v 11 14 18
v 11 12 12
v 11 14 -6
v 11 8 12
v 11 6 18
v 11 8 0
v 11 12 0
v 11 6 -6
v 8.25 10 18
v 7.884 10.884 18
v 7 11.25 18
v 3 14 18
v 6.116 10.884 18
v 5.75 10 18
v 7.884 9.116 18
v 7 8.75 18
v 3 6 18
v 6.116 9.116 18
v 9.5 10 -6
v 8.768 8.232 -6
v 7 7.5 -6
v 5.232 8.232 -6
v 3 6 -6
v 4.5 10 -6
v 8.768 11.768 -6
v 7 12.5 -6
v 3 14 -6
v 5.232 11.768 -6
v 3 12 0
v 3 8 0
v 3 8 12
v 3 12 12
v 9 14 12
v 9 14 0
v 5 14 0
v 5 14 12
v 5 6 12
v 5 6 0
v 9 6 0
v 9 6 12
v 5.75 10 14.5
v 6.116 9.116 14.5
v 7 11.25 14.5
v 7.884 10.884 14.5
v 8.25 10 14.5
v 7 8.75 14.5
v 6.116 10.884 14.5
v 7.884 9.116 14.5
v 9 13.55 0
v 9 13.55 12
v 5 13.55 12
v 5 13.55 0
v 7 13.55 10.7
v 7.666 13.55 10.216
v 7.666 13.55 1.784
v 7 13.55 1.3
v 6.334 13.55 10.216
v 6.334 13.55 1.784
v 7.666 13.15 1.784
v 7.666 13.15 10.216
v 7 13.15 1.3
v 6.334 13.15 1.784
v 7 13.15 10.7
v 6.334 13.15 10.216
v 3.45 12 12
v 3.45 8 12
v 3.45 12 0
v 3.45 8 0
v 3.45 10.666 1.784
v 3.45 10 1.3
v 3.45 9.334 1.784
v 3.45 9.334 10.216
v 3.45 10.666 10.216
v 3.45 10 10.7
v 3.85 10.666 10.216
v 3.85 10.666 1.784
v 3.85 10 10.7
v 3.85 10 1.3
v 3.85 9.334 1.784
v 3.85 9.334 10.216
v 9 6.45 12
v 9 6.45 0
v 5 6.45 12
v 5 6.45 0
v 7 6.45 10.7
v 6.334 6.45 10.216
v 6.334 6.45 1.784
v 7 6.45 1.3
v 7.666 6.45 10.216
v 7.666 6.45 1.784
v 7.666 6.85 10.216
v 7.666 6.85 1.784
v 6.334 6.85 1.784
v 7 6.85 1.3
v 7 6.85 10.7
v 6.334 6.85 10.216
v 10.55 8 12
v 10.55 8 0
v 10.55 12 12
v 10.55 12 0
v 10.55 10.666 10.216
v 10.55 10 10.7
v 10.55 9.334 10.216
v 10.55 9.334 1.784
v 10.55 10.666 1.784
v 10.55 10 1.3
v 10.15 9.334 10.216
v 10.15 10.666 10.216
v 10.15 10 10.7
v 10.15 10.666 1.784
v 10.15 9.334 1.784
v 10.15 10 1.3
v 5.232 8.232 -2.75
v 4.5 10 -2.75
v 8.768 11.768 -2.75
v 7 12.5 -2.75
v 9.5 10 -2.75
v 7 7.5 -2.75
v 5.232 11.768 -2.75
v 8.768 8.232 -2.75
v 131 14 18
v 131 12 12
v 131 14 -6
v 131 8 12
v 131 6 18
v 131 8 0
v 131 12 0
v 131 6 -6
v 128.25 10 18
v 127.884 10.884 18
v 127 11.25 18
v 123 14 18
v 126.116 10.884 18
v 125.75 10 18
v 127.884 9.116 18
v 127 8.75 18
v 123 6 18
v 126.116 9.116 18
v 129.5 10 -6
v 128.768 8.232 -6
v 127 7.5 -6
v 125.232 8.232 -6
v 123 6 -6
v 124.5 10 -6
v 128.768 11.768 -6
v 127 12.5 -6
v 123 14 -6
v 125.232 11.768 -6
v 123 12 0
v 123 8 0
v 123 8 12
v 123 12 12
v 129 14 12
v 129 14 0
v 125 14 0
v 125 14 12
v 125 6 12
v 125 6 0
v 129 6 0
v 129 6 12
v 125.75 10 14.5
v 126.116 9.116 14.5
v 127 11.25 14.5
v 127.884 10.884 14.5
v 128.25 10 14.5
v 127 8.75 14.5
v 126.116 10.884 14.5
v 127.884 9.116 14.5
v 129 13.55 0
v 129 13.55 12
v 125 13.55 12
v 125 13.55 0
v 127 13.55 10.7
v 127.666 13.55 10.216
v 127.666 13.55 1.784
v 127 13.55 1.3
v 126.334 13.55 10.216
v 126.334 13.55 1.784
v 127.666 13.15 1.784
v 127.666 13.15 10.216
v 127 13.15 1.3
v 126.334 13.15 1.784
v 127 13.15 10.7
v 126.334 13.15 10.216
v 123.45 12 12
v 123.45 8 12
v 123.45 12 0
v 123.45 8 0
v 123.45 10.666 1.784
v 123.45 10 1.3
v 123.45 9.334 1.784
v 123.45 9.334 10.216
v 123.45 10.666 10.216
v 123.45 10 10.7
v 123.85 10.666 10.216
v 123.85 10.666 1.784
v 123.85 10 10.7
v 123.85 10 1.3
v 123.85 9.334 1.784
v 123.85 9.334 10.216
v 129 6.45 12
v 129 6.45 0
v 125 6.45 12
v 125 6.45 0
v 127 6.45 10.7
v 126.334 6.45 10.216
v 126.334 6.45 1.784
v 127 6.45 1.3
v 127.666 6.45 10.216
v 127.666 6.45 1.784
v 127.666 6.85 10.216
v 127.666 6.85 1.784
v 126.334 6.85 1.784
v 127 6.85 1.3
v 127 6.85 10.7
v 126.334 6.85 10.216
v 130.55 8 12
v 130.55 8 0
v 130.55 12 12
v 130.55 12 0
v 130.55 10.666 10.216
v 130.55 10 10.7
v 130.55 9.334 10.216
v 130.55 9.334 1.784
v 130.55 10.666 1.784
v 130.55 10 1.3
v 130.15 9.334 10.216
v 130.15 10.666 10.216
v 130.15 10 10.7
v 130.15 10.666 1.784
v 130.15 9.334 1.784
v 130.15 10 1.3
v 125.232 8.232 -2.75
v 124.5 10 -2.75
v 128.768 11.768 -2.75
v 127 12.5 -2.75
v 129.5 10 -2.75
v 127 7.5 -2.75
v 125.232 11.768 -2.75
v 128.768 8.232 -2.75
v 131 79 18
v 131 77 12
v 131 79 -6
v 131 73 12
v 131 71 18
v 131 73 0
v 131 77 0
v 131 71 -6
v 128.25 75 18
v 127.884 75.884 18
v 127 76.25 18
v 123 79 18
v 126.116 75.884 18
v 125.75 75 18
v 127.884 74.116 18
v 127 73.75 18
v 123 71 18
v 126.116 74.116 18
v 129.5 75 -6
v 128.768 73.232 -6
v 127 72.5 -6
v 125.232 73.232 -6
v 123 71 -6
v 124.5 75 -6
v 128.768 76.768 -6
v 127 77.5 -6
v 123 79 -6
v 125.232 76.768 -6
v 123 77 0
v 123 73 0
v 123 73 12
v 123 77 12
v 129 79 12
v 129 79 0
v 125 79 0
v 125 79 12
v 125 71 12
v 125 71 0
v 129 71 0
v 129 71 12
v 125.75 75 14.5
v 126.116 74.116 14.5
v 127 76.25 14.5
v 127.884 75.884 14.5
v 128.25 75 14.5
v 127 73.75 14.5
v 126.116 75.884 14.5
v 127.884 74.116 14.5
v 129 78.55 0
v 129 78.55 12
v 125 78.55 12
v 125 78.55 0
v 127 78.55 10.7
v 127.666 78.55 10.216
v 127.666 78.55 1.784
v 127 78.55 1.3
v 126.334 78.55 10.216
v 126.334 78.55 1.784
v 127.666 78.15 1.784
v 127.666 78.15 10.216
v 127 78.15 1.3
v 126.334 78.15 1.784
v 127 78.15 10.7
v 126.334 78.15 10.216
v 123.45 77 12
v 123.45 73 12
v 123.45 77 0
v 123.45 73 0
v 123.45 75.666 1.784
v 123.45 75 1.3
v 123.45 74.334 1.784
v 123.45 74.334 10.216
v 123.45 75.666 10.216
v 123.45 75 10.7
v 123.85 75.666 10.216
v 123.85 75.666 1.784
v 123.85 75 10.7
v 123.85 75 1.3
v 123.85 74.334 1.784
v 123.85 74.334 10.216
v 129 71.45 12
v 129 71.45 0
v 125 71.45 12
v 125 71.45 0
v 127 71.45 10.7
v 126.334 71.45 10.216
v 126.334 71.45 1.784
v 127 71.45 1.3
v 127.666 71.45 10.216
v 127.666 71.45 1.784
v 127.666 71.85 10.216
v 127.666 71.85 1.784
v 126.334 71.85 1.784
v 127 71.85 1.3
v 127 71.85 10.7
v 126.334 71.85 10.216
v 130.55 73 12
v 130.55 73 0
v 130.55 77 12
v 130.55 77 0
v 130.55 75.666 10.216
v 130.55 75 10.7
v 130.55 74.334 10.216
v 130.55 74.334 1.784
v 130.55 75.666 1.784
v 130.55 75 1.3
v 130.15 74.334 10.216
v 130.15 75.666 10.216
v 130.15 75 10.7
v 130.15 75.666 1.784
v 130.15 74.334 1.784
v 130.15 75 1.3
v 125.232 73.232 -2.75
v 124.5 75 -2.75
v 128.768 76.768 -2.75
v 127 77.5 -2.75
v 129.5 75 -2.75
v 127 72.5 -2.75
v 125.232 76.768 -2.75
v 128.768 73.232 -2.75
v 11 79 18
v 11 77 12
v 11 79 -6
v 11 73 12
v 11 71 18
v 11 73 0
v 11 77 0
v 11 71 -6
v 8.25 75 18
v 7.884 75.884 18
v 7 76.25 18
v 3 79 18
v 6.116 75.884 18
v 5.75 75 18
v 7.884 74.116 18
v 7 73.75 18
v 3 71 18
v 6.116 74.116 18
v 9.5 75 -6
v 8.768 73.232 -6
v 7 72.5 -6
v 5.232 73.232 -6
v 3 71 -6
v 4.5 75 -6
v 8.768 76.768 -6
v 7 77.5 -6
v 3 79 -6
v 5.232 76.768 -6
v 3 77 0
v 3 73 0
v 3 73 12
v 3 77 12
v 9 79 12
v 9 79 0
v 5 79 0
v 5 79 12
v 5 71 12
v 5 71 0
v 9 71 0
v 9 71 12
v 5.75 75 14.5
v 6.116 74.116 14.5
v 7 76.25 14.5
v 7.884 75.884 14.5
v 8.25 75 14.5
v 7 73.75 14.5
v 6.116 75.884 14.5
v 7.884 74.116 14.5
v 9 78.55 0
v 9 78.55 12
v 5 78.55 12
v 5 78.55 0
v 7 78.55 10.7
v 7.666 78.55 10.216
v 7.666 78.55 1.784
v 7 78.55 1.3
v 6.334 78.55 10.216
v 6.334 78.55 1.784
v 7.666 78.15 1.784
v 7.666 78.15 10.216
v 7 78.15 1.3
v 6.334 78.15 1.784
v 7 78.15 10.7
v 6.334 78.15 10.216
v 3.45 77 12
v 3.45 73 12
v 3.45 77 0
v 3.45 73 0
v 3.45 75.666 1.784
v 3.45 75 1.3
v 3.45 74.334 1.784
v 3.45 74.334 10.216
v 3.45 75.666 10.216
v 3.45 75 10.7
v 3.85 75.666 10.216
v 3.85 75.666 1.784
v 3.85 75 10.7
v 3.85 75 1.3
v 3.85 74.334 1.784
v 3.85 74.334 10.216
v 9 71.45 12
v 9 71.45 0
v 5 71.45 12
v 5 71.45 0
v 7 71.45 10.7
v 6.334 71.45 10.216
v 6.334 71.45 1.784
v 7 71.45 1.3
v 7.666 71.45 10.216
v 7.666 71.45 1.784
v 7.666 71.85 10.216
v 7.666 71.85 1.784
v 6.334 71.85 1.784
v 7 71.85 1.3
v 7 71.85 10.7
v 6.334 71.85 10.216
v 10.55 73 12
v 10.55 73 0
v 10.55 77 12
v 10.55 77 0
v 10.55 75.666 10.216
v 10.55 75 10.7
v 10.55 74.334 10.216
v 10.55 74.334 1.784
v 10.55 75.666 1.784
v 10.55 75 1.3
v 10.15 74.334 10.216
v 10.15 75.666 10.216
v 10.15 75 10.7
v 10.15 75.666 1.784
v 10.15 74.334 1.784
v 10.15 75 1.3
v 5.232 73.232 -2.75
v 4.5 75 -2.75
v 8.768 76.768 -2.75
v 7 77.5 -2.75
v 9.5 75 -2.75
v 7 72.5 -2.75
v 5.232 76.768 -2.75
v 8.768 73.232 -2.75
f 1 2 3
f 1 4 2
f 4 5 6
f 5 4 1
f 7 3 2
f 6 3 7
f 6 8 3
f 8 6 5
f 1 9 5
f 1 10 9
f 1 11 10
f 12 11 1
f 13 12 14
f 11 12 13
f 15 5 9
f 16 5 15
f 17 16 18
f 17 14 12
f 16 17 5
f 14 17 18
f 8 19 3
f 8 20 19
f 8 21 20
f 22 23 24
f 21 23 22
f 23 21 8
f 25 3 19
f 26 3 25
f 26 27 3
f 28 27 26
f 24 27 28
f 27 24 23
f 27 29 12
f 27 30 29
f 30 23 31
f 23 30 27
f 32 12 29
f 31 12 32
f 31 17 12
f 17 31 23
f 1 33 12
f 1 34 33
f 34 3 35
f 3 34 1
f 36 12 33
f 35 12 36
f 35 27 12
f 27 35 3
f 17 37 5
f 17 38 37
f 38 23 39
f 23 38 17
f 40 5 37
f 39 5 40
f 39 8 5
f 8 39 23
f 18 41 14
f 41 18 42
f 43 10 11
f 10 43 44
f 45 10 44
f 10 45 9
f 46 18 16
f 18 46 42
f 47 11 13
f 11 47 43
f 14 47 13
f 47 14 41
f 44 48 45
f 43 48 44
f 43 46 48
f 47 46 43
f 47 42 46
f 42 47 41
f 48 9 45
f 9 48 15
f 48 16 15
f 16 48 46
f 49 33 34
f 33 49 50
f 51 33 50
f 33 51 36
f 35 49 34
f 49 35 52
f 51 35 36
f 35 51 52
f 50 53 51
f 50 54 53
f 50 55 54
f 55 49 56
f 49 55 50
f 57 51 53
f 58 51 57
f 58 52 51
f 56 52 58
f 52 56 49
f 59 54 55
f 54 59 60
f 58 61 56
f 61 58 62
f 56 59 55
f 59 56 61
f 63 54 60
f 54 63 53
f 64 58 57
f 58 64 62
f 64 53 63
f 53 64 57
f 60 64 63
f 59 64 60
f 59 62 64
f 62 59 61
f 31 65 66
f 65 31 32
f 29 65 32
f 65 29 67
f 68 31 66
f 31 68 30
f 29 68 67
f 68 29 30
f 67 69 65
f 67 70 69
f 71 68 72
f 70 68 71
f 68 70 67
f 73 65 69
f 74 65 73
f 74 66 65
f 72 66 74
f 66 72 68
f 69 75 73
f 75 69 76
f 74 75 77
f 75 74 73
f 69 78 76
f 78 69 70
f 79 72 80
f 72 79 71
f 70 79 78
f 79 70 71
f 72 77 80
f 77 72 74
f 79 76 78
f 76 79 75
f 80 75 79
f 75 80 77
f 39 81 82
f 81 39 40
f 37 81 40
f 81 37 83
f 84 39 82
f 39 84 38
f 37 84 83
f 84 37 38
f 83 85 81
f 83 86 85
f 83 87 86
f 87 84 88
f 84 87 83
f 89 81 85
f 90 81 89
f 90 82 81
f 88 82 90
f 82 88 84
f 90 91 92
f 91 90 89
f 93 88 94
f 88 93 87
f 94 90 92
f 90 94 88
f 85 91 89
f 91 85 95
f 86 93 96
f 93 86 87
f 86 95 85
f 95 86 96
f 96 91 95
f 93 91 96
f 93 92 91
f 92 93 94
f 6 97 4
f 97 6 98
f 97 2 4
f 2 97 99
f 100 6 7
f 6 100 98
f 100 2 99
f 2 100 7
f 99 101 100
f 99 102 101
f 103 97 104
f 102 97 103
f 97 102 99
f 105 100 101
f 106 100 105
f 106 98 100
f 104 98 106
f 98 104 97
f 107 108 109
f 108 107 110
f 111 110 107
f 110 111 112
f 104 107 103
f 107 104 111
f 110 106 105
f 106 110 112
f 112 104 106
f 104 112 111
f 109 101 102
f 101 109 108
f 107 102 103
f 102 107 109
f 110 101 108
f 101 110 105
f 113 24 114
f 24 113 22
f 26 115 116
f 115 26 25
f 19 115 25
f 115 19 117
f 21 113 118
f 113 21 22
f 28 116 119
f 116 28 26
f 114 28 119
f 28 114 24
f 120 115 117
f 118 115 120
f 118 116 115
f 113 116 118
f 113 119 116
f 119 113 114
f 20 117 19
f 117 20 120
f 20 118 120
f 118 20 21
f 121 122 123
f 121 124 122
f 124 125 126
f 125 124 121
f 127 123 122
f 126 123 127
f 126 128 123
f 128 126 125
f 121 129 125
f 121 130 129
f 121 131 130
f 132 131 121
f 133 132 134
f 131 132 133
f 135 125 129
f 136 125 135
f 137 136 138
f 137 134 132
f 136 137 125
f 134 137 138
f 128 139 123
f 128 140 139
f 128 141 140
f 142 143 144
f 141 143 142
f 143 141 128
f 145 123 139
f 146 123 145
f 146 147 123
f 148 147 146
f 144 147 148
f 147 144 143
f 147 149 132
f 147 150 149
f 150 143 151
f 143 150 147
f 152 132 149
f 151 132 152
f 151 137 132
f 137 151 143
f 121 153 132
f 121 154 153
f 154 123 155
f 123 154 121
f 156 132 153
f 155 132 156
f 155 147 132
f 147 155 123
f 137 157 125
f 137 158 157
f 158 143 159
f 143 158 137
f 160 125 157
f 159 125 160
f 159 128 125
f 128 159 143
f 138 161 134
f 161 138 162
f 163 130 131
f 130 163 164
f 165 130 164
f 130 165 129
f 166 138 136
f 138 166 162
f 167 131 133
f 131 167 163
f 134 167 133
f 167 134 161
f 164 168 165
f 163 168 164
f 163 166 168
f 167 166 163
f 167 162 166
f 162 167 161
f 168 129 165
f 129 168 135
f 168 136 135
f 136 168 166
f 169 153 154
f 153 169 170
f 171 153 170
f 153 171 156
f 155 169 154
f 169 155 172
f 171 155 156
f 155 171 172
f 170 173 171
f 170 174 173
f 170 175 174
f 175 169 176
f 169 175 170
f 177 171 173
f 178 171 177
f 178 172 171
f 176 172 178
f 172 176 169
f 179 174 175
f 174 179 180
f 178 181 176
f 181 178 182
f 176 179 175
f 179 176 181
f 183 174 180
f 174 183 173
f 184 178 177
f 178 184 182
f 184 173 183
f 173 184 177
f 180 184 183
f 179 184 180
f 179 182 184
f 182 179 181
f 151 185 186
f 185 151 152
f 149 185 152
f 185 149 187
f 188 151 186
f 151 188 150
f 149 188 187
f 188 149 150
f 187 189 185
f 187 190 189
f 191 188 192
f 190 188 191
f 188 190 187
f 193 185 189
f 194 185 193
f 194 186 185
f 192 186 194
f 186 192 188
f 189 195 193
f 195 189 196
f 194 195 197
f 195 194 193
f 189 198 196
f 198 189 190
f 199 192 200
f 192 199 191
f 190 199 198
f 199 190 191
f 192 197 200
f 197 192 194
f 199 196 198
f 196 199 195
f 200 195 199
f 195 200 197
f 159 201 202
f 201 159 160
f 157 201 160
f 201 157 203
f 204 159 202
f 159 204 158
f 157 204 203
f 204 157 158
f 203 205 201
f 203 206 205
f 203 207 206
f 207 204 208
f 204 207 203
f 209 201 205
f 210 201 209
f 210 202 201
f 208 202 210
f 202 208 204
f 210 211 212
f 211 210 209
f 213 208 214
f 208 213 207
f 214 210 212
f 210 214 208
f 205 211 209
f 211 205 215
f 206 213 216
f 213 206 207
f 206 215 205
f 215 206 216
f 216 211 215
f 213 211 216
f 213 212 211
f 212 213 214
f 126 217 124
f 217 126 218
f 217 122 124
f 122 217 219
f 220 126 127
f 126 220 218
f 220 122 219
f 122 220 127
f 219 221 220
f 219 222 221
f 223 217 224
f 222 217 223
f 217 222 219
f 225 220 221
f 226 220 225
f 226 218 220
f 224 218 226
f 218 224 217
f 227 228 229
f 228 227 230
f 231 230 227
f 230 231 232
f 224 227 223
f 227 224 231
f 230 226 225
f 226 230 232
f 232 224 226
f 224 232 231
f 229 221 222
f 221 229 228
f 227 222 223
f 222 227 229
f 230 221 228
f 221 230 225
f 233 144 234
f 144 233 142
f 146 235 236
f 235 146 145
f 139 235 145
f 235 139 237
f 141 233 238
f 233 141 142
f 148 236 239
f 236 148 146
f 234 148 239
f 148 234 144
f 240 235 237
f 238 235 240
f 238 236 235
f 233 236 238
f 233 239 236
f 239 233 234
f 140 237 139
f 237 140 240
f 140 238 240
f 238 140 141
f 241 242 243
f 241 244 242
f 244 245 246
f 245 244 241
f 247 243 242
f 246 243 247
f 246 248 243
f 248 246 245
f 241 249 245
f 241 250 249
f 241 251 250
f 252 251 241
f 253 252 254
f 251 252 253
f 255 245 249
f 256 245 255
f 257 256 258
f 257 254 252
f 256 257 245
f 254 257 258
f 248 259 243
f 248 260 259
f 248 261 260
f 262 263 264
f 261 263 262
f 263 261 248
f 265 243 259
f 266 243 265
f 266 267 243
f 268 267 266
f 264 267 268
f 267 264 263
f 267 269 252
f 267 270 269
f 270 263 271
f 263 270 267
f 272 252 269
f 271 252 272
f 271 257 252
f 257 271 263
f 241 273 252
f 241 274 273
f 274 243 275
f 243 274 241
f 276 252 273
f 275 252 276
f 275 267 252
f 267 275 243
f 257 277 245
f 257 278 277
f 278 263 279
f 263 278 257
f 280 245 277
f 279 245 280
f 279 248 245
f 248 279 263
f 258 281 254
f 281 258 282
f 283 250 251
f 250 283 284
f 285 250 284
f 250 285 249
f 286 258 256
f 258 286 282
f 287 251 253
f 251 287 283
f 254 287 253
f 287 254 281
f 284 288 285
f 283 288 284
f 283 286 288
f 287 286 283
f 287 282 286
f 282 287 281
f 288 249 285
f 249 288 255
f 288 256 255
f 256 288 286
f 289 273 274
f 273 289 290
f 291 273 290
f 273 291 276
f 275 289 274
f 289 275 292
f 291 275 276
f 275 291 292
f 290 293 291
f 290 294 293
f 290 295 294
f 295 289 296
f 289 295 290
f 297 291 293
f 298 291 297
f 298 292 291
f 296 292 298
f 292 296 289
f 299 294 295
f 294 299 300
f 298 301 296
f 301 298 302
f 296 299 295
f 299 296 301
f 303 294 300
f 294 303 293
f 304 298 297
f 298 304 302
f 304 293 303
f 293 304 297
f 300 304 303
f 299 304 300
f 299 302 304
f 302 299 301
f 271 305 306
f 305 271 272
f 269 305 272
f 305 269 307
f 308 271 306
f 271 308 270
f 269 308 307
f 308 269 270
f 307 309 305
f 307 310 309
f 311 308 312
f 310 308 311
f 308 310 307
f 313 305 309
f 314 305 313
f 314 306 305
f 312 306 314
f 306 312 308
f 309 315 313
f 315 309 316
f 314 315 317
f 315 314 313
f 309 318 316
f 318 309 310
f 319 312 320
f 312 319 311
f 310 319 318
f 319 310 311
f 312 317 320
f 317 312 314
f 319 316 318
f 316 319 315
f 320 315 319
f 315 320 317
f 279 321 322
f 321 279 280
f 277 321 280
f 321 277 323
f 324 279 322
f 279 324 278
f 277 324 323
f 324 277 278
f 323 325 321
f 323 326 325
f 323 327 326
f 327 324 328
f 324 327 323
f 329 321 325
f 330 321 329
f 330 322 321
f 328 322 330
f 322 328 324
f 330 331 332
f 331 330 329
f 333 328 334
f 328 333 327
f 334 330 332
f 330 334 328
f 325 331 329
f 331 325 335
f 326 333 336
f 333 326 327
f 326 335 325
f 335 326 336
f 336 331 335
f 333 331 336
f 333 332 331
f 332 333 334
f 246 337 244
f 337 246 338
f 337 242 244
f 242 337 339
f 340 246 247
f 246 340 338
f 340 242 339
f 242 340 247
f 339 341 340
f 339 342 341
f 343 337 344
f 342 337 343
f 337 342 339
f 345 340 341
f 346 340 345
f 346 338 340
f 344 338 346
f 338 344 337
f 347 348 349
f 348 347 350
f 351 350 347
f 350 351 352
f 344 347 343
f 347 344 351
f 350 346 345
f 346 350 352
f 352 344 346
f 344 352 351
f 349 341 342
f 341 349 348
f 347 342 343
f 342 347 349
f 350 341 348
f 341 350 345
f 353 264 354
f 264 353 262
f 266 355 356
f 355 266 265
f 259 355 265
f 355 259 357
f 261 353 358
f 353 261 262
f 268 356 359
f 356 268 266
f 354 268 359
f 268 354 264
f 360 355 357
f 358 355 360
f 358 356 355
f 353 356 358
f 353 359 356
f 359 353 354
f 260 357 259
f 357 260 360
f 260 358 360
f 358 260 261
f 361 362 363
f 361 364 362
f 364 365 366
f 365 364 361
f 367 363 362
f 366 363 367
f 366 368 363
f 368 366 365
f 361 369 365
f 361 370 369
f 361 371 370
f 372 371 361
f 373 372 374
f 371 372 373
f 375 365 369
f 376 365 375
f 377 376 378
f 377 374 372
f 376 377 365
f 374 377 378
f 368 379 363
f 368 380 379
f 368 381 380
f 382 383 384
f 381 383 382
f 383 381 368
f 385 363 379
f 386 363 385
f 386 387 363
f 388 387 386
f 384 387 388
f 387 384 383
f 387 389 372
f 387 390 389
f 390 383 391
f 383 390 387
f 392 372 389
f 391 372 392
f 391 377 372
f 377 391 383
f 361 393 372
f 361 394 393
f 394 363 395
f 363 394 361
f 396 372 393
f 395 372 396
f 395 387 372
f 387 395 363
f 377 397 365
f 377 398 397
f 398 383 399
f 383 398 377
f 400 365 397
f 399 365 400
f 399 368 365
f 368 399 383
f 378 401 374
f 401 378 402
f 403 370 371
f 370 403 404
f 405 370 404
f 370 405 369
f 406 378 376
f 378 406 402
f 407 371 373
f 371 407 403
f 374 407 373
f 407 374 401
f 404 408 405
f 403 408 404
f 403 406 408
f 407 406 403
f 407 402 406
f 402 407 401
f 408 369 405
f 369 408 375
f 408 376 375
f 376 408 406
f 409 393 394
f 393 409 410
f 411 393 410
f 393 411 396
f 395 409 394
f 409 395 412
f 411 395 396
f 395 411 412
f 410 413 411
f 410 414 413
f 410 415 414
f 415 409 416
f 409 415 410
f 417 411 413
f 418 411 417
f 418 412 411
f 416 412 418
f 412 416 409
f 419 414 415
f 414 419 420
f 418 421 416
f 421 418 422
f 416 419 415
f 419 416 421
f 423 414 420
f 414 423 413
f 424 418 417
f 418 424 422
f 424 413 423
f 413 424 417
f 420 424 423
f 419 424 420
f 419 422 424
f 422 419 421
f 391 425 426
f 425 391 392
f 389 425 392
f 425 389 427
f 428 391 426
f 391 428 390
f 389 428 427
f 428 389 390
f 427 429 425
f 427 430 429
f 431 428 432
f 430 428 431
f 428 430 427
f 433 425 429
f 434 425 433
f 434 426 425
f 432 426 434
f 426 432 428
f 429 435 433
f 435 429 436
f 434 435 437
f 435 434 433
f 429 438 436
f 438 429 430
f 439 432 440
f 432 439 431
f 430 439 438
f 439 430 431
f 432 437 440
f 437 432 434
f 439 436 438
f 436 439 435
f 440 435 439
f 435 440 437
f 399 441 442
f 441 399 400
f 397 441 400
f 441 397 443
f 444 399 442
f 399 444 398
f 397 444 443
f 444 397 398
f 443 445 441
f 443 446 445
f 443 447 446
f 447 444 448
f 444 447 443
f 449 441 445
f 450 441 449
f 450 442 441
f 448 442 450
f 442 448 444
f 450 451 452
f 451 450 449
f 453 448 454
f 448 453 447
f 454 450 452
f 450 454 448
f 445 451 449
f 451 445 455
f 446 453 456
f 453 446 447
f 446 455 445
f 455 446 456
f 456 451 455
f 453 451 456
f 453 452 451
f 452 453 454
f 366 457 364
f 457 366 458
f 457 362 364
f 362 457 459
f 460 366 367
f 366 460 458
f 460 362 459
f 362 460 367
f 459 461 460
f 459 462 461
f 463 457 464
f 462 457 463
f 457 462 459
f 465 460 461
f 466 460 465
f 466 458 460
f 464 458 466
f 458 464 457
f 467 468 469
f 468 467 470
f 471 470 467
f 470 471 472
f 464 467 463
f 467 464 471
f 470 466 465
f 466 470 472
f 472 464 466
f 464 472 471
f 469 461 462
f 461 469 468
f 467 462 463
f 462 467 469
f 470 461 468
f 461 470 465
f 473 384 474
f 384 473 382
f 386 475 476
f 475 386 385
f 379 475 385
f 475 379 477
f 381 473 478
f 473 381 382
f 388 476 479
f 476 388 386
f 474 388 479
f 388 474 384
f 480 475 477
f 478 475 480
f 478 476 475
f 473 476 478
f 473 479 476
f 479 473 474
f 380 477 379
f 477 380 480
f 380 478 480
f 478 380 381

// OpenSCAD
translate([7,10,0])
union() {
    translate([0,0,6])
    support();
    translate([120,0,6])
    support();
    translate([120,65,6])
    support();
    translate([0,65,6])
    support();
}

module support() {
 difference(){
     
       // Main support
       cube([8,8,24],center=true);
     
       // Top Hole
       translate([0,0,10.6])
       cylinder(h=4.2,r=1.25, center=true, $fn=8);
  
        // Inset
       translate([0,3.8,0])
       cube([4,0.5,12], center=true);
       translate([0,3.4,-4])
       color([1,0,1])
       roofSupportArcOval();
        
        // Inset
        translate([-3.8,0,0])
        rotate([0,0,90])
        cube([4,0.5,12], center=true);
        translate([-3.4,0,-4])
        rotate([0,0,90])
        color([1,0,1])
        roofSupportArcOval();
        
        // Inset
        translate([0,-3.8,0])
        cube([4,0.5,12], center=true);
        translate([0,-3.4,-4])
        color([1,0,1])
        roofSupportArcOval();
        
        // Inset
        translate([3.8,0,0])
        rotate([0,0,-90])
        cube([4,0.5,12], center=true);
        translate([3.4,0,-4])
        rotate([0,0,-90])
        color([1,0,1])
        roofSupportArcOval();
        
        // Bottom Hole
        translate([0,0,-10.5])
        cylinder(h=3.5,r=2.5, center=true, $fn=8);
 
        
   }
}


module roofSupportArcOval() {
   rotate([90,-90,0])
   hull() {
    rotate([0,180,0])
    cylinder(h=.5,r=.7, center=true);
    translate([8,0,0])
    cylinder(h=.5,r=.7, center=true);
    }
}
 
